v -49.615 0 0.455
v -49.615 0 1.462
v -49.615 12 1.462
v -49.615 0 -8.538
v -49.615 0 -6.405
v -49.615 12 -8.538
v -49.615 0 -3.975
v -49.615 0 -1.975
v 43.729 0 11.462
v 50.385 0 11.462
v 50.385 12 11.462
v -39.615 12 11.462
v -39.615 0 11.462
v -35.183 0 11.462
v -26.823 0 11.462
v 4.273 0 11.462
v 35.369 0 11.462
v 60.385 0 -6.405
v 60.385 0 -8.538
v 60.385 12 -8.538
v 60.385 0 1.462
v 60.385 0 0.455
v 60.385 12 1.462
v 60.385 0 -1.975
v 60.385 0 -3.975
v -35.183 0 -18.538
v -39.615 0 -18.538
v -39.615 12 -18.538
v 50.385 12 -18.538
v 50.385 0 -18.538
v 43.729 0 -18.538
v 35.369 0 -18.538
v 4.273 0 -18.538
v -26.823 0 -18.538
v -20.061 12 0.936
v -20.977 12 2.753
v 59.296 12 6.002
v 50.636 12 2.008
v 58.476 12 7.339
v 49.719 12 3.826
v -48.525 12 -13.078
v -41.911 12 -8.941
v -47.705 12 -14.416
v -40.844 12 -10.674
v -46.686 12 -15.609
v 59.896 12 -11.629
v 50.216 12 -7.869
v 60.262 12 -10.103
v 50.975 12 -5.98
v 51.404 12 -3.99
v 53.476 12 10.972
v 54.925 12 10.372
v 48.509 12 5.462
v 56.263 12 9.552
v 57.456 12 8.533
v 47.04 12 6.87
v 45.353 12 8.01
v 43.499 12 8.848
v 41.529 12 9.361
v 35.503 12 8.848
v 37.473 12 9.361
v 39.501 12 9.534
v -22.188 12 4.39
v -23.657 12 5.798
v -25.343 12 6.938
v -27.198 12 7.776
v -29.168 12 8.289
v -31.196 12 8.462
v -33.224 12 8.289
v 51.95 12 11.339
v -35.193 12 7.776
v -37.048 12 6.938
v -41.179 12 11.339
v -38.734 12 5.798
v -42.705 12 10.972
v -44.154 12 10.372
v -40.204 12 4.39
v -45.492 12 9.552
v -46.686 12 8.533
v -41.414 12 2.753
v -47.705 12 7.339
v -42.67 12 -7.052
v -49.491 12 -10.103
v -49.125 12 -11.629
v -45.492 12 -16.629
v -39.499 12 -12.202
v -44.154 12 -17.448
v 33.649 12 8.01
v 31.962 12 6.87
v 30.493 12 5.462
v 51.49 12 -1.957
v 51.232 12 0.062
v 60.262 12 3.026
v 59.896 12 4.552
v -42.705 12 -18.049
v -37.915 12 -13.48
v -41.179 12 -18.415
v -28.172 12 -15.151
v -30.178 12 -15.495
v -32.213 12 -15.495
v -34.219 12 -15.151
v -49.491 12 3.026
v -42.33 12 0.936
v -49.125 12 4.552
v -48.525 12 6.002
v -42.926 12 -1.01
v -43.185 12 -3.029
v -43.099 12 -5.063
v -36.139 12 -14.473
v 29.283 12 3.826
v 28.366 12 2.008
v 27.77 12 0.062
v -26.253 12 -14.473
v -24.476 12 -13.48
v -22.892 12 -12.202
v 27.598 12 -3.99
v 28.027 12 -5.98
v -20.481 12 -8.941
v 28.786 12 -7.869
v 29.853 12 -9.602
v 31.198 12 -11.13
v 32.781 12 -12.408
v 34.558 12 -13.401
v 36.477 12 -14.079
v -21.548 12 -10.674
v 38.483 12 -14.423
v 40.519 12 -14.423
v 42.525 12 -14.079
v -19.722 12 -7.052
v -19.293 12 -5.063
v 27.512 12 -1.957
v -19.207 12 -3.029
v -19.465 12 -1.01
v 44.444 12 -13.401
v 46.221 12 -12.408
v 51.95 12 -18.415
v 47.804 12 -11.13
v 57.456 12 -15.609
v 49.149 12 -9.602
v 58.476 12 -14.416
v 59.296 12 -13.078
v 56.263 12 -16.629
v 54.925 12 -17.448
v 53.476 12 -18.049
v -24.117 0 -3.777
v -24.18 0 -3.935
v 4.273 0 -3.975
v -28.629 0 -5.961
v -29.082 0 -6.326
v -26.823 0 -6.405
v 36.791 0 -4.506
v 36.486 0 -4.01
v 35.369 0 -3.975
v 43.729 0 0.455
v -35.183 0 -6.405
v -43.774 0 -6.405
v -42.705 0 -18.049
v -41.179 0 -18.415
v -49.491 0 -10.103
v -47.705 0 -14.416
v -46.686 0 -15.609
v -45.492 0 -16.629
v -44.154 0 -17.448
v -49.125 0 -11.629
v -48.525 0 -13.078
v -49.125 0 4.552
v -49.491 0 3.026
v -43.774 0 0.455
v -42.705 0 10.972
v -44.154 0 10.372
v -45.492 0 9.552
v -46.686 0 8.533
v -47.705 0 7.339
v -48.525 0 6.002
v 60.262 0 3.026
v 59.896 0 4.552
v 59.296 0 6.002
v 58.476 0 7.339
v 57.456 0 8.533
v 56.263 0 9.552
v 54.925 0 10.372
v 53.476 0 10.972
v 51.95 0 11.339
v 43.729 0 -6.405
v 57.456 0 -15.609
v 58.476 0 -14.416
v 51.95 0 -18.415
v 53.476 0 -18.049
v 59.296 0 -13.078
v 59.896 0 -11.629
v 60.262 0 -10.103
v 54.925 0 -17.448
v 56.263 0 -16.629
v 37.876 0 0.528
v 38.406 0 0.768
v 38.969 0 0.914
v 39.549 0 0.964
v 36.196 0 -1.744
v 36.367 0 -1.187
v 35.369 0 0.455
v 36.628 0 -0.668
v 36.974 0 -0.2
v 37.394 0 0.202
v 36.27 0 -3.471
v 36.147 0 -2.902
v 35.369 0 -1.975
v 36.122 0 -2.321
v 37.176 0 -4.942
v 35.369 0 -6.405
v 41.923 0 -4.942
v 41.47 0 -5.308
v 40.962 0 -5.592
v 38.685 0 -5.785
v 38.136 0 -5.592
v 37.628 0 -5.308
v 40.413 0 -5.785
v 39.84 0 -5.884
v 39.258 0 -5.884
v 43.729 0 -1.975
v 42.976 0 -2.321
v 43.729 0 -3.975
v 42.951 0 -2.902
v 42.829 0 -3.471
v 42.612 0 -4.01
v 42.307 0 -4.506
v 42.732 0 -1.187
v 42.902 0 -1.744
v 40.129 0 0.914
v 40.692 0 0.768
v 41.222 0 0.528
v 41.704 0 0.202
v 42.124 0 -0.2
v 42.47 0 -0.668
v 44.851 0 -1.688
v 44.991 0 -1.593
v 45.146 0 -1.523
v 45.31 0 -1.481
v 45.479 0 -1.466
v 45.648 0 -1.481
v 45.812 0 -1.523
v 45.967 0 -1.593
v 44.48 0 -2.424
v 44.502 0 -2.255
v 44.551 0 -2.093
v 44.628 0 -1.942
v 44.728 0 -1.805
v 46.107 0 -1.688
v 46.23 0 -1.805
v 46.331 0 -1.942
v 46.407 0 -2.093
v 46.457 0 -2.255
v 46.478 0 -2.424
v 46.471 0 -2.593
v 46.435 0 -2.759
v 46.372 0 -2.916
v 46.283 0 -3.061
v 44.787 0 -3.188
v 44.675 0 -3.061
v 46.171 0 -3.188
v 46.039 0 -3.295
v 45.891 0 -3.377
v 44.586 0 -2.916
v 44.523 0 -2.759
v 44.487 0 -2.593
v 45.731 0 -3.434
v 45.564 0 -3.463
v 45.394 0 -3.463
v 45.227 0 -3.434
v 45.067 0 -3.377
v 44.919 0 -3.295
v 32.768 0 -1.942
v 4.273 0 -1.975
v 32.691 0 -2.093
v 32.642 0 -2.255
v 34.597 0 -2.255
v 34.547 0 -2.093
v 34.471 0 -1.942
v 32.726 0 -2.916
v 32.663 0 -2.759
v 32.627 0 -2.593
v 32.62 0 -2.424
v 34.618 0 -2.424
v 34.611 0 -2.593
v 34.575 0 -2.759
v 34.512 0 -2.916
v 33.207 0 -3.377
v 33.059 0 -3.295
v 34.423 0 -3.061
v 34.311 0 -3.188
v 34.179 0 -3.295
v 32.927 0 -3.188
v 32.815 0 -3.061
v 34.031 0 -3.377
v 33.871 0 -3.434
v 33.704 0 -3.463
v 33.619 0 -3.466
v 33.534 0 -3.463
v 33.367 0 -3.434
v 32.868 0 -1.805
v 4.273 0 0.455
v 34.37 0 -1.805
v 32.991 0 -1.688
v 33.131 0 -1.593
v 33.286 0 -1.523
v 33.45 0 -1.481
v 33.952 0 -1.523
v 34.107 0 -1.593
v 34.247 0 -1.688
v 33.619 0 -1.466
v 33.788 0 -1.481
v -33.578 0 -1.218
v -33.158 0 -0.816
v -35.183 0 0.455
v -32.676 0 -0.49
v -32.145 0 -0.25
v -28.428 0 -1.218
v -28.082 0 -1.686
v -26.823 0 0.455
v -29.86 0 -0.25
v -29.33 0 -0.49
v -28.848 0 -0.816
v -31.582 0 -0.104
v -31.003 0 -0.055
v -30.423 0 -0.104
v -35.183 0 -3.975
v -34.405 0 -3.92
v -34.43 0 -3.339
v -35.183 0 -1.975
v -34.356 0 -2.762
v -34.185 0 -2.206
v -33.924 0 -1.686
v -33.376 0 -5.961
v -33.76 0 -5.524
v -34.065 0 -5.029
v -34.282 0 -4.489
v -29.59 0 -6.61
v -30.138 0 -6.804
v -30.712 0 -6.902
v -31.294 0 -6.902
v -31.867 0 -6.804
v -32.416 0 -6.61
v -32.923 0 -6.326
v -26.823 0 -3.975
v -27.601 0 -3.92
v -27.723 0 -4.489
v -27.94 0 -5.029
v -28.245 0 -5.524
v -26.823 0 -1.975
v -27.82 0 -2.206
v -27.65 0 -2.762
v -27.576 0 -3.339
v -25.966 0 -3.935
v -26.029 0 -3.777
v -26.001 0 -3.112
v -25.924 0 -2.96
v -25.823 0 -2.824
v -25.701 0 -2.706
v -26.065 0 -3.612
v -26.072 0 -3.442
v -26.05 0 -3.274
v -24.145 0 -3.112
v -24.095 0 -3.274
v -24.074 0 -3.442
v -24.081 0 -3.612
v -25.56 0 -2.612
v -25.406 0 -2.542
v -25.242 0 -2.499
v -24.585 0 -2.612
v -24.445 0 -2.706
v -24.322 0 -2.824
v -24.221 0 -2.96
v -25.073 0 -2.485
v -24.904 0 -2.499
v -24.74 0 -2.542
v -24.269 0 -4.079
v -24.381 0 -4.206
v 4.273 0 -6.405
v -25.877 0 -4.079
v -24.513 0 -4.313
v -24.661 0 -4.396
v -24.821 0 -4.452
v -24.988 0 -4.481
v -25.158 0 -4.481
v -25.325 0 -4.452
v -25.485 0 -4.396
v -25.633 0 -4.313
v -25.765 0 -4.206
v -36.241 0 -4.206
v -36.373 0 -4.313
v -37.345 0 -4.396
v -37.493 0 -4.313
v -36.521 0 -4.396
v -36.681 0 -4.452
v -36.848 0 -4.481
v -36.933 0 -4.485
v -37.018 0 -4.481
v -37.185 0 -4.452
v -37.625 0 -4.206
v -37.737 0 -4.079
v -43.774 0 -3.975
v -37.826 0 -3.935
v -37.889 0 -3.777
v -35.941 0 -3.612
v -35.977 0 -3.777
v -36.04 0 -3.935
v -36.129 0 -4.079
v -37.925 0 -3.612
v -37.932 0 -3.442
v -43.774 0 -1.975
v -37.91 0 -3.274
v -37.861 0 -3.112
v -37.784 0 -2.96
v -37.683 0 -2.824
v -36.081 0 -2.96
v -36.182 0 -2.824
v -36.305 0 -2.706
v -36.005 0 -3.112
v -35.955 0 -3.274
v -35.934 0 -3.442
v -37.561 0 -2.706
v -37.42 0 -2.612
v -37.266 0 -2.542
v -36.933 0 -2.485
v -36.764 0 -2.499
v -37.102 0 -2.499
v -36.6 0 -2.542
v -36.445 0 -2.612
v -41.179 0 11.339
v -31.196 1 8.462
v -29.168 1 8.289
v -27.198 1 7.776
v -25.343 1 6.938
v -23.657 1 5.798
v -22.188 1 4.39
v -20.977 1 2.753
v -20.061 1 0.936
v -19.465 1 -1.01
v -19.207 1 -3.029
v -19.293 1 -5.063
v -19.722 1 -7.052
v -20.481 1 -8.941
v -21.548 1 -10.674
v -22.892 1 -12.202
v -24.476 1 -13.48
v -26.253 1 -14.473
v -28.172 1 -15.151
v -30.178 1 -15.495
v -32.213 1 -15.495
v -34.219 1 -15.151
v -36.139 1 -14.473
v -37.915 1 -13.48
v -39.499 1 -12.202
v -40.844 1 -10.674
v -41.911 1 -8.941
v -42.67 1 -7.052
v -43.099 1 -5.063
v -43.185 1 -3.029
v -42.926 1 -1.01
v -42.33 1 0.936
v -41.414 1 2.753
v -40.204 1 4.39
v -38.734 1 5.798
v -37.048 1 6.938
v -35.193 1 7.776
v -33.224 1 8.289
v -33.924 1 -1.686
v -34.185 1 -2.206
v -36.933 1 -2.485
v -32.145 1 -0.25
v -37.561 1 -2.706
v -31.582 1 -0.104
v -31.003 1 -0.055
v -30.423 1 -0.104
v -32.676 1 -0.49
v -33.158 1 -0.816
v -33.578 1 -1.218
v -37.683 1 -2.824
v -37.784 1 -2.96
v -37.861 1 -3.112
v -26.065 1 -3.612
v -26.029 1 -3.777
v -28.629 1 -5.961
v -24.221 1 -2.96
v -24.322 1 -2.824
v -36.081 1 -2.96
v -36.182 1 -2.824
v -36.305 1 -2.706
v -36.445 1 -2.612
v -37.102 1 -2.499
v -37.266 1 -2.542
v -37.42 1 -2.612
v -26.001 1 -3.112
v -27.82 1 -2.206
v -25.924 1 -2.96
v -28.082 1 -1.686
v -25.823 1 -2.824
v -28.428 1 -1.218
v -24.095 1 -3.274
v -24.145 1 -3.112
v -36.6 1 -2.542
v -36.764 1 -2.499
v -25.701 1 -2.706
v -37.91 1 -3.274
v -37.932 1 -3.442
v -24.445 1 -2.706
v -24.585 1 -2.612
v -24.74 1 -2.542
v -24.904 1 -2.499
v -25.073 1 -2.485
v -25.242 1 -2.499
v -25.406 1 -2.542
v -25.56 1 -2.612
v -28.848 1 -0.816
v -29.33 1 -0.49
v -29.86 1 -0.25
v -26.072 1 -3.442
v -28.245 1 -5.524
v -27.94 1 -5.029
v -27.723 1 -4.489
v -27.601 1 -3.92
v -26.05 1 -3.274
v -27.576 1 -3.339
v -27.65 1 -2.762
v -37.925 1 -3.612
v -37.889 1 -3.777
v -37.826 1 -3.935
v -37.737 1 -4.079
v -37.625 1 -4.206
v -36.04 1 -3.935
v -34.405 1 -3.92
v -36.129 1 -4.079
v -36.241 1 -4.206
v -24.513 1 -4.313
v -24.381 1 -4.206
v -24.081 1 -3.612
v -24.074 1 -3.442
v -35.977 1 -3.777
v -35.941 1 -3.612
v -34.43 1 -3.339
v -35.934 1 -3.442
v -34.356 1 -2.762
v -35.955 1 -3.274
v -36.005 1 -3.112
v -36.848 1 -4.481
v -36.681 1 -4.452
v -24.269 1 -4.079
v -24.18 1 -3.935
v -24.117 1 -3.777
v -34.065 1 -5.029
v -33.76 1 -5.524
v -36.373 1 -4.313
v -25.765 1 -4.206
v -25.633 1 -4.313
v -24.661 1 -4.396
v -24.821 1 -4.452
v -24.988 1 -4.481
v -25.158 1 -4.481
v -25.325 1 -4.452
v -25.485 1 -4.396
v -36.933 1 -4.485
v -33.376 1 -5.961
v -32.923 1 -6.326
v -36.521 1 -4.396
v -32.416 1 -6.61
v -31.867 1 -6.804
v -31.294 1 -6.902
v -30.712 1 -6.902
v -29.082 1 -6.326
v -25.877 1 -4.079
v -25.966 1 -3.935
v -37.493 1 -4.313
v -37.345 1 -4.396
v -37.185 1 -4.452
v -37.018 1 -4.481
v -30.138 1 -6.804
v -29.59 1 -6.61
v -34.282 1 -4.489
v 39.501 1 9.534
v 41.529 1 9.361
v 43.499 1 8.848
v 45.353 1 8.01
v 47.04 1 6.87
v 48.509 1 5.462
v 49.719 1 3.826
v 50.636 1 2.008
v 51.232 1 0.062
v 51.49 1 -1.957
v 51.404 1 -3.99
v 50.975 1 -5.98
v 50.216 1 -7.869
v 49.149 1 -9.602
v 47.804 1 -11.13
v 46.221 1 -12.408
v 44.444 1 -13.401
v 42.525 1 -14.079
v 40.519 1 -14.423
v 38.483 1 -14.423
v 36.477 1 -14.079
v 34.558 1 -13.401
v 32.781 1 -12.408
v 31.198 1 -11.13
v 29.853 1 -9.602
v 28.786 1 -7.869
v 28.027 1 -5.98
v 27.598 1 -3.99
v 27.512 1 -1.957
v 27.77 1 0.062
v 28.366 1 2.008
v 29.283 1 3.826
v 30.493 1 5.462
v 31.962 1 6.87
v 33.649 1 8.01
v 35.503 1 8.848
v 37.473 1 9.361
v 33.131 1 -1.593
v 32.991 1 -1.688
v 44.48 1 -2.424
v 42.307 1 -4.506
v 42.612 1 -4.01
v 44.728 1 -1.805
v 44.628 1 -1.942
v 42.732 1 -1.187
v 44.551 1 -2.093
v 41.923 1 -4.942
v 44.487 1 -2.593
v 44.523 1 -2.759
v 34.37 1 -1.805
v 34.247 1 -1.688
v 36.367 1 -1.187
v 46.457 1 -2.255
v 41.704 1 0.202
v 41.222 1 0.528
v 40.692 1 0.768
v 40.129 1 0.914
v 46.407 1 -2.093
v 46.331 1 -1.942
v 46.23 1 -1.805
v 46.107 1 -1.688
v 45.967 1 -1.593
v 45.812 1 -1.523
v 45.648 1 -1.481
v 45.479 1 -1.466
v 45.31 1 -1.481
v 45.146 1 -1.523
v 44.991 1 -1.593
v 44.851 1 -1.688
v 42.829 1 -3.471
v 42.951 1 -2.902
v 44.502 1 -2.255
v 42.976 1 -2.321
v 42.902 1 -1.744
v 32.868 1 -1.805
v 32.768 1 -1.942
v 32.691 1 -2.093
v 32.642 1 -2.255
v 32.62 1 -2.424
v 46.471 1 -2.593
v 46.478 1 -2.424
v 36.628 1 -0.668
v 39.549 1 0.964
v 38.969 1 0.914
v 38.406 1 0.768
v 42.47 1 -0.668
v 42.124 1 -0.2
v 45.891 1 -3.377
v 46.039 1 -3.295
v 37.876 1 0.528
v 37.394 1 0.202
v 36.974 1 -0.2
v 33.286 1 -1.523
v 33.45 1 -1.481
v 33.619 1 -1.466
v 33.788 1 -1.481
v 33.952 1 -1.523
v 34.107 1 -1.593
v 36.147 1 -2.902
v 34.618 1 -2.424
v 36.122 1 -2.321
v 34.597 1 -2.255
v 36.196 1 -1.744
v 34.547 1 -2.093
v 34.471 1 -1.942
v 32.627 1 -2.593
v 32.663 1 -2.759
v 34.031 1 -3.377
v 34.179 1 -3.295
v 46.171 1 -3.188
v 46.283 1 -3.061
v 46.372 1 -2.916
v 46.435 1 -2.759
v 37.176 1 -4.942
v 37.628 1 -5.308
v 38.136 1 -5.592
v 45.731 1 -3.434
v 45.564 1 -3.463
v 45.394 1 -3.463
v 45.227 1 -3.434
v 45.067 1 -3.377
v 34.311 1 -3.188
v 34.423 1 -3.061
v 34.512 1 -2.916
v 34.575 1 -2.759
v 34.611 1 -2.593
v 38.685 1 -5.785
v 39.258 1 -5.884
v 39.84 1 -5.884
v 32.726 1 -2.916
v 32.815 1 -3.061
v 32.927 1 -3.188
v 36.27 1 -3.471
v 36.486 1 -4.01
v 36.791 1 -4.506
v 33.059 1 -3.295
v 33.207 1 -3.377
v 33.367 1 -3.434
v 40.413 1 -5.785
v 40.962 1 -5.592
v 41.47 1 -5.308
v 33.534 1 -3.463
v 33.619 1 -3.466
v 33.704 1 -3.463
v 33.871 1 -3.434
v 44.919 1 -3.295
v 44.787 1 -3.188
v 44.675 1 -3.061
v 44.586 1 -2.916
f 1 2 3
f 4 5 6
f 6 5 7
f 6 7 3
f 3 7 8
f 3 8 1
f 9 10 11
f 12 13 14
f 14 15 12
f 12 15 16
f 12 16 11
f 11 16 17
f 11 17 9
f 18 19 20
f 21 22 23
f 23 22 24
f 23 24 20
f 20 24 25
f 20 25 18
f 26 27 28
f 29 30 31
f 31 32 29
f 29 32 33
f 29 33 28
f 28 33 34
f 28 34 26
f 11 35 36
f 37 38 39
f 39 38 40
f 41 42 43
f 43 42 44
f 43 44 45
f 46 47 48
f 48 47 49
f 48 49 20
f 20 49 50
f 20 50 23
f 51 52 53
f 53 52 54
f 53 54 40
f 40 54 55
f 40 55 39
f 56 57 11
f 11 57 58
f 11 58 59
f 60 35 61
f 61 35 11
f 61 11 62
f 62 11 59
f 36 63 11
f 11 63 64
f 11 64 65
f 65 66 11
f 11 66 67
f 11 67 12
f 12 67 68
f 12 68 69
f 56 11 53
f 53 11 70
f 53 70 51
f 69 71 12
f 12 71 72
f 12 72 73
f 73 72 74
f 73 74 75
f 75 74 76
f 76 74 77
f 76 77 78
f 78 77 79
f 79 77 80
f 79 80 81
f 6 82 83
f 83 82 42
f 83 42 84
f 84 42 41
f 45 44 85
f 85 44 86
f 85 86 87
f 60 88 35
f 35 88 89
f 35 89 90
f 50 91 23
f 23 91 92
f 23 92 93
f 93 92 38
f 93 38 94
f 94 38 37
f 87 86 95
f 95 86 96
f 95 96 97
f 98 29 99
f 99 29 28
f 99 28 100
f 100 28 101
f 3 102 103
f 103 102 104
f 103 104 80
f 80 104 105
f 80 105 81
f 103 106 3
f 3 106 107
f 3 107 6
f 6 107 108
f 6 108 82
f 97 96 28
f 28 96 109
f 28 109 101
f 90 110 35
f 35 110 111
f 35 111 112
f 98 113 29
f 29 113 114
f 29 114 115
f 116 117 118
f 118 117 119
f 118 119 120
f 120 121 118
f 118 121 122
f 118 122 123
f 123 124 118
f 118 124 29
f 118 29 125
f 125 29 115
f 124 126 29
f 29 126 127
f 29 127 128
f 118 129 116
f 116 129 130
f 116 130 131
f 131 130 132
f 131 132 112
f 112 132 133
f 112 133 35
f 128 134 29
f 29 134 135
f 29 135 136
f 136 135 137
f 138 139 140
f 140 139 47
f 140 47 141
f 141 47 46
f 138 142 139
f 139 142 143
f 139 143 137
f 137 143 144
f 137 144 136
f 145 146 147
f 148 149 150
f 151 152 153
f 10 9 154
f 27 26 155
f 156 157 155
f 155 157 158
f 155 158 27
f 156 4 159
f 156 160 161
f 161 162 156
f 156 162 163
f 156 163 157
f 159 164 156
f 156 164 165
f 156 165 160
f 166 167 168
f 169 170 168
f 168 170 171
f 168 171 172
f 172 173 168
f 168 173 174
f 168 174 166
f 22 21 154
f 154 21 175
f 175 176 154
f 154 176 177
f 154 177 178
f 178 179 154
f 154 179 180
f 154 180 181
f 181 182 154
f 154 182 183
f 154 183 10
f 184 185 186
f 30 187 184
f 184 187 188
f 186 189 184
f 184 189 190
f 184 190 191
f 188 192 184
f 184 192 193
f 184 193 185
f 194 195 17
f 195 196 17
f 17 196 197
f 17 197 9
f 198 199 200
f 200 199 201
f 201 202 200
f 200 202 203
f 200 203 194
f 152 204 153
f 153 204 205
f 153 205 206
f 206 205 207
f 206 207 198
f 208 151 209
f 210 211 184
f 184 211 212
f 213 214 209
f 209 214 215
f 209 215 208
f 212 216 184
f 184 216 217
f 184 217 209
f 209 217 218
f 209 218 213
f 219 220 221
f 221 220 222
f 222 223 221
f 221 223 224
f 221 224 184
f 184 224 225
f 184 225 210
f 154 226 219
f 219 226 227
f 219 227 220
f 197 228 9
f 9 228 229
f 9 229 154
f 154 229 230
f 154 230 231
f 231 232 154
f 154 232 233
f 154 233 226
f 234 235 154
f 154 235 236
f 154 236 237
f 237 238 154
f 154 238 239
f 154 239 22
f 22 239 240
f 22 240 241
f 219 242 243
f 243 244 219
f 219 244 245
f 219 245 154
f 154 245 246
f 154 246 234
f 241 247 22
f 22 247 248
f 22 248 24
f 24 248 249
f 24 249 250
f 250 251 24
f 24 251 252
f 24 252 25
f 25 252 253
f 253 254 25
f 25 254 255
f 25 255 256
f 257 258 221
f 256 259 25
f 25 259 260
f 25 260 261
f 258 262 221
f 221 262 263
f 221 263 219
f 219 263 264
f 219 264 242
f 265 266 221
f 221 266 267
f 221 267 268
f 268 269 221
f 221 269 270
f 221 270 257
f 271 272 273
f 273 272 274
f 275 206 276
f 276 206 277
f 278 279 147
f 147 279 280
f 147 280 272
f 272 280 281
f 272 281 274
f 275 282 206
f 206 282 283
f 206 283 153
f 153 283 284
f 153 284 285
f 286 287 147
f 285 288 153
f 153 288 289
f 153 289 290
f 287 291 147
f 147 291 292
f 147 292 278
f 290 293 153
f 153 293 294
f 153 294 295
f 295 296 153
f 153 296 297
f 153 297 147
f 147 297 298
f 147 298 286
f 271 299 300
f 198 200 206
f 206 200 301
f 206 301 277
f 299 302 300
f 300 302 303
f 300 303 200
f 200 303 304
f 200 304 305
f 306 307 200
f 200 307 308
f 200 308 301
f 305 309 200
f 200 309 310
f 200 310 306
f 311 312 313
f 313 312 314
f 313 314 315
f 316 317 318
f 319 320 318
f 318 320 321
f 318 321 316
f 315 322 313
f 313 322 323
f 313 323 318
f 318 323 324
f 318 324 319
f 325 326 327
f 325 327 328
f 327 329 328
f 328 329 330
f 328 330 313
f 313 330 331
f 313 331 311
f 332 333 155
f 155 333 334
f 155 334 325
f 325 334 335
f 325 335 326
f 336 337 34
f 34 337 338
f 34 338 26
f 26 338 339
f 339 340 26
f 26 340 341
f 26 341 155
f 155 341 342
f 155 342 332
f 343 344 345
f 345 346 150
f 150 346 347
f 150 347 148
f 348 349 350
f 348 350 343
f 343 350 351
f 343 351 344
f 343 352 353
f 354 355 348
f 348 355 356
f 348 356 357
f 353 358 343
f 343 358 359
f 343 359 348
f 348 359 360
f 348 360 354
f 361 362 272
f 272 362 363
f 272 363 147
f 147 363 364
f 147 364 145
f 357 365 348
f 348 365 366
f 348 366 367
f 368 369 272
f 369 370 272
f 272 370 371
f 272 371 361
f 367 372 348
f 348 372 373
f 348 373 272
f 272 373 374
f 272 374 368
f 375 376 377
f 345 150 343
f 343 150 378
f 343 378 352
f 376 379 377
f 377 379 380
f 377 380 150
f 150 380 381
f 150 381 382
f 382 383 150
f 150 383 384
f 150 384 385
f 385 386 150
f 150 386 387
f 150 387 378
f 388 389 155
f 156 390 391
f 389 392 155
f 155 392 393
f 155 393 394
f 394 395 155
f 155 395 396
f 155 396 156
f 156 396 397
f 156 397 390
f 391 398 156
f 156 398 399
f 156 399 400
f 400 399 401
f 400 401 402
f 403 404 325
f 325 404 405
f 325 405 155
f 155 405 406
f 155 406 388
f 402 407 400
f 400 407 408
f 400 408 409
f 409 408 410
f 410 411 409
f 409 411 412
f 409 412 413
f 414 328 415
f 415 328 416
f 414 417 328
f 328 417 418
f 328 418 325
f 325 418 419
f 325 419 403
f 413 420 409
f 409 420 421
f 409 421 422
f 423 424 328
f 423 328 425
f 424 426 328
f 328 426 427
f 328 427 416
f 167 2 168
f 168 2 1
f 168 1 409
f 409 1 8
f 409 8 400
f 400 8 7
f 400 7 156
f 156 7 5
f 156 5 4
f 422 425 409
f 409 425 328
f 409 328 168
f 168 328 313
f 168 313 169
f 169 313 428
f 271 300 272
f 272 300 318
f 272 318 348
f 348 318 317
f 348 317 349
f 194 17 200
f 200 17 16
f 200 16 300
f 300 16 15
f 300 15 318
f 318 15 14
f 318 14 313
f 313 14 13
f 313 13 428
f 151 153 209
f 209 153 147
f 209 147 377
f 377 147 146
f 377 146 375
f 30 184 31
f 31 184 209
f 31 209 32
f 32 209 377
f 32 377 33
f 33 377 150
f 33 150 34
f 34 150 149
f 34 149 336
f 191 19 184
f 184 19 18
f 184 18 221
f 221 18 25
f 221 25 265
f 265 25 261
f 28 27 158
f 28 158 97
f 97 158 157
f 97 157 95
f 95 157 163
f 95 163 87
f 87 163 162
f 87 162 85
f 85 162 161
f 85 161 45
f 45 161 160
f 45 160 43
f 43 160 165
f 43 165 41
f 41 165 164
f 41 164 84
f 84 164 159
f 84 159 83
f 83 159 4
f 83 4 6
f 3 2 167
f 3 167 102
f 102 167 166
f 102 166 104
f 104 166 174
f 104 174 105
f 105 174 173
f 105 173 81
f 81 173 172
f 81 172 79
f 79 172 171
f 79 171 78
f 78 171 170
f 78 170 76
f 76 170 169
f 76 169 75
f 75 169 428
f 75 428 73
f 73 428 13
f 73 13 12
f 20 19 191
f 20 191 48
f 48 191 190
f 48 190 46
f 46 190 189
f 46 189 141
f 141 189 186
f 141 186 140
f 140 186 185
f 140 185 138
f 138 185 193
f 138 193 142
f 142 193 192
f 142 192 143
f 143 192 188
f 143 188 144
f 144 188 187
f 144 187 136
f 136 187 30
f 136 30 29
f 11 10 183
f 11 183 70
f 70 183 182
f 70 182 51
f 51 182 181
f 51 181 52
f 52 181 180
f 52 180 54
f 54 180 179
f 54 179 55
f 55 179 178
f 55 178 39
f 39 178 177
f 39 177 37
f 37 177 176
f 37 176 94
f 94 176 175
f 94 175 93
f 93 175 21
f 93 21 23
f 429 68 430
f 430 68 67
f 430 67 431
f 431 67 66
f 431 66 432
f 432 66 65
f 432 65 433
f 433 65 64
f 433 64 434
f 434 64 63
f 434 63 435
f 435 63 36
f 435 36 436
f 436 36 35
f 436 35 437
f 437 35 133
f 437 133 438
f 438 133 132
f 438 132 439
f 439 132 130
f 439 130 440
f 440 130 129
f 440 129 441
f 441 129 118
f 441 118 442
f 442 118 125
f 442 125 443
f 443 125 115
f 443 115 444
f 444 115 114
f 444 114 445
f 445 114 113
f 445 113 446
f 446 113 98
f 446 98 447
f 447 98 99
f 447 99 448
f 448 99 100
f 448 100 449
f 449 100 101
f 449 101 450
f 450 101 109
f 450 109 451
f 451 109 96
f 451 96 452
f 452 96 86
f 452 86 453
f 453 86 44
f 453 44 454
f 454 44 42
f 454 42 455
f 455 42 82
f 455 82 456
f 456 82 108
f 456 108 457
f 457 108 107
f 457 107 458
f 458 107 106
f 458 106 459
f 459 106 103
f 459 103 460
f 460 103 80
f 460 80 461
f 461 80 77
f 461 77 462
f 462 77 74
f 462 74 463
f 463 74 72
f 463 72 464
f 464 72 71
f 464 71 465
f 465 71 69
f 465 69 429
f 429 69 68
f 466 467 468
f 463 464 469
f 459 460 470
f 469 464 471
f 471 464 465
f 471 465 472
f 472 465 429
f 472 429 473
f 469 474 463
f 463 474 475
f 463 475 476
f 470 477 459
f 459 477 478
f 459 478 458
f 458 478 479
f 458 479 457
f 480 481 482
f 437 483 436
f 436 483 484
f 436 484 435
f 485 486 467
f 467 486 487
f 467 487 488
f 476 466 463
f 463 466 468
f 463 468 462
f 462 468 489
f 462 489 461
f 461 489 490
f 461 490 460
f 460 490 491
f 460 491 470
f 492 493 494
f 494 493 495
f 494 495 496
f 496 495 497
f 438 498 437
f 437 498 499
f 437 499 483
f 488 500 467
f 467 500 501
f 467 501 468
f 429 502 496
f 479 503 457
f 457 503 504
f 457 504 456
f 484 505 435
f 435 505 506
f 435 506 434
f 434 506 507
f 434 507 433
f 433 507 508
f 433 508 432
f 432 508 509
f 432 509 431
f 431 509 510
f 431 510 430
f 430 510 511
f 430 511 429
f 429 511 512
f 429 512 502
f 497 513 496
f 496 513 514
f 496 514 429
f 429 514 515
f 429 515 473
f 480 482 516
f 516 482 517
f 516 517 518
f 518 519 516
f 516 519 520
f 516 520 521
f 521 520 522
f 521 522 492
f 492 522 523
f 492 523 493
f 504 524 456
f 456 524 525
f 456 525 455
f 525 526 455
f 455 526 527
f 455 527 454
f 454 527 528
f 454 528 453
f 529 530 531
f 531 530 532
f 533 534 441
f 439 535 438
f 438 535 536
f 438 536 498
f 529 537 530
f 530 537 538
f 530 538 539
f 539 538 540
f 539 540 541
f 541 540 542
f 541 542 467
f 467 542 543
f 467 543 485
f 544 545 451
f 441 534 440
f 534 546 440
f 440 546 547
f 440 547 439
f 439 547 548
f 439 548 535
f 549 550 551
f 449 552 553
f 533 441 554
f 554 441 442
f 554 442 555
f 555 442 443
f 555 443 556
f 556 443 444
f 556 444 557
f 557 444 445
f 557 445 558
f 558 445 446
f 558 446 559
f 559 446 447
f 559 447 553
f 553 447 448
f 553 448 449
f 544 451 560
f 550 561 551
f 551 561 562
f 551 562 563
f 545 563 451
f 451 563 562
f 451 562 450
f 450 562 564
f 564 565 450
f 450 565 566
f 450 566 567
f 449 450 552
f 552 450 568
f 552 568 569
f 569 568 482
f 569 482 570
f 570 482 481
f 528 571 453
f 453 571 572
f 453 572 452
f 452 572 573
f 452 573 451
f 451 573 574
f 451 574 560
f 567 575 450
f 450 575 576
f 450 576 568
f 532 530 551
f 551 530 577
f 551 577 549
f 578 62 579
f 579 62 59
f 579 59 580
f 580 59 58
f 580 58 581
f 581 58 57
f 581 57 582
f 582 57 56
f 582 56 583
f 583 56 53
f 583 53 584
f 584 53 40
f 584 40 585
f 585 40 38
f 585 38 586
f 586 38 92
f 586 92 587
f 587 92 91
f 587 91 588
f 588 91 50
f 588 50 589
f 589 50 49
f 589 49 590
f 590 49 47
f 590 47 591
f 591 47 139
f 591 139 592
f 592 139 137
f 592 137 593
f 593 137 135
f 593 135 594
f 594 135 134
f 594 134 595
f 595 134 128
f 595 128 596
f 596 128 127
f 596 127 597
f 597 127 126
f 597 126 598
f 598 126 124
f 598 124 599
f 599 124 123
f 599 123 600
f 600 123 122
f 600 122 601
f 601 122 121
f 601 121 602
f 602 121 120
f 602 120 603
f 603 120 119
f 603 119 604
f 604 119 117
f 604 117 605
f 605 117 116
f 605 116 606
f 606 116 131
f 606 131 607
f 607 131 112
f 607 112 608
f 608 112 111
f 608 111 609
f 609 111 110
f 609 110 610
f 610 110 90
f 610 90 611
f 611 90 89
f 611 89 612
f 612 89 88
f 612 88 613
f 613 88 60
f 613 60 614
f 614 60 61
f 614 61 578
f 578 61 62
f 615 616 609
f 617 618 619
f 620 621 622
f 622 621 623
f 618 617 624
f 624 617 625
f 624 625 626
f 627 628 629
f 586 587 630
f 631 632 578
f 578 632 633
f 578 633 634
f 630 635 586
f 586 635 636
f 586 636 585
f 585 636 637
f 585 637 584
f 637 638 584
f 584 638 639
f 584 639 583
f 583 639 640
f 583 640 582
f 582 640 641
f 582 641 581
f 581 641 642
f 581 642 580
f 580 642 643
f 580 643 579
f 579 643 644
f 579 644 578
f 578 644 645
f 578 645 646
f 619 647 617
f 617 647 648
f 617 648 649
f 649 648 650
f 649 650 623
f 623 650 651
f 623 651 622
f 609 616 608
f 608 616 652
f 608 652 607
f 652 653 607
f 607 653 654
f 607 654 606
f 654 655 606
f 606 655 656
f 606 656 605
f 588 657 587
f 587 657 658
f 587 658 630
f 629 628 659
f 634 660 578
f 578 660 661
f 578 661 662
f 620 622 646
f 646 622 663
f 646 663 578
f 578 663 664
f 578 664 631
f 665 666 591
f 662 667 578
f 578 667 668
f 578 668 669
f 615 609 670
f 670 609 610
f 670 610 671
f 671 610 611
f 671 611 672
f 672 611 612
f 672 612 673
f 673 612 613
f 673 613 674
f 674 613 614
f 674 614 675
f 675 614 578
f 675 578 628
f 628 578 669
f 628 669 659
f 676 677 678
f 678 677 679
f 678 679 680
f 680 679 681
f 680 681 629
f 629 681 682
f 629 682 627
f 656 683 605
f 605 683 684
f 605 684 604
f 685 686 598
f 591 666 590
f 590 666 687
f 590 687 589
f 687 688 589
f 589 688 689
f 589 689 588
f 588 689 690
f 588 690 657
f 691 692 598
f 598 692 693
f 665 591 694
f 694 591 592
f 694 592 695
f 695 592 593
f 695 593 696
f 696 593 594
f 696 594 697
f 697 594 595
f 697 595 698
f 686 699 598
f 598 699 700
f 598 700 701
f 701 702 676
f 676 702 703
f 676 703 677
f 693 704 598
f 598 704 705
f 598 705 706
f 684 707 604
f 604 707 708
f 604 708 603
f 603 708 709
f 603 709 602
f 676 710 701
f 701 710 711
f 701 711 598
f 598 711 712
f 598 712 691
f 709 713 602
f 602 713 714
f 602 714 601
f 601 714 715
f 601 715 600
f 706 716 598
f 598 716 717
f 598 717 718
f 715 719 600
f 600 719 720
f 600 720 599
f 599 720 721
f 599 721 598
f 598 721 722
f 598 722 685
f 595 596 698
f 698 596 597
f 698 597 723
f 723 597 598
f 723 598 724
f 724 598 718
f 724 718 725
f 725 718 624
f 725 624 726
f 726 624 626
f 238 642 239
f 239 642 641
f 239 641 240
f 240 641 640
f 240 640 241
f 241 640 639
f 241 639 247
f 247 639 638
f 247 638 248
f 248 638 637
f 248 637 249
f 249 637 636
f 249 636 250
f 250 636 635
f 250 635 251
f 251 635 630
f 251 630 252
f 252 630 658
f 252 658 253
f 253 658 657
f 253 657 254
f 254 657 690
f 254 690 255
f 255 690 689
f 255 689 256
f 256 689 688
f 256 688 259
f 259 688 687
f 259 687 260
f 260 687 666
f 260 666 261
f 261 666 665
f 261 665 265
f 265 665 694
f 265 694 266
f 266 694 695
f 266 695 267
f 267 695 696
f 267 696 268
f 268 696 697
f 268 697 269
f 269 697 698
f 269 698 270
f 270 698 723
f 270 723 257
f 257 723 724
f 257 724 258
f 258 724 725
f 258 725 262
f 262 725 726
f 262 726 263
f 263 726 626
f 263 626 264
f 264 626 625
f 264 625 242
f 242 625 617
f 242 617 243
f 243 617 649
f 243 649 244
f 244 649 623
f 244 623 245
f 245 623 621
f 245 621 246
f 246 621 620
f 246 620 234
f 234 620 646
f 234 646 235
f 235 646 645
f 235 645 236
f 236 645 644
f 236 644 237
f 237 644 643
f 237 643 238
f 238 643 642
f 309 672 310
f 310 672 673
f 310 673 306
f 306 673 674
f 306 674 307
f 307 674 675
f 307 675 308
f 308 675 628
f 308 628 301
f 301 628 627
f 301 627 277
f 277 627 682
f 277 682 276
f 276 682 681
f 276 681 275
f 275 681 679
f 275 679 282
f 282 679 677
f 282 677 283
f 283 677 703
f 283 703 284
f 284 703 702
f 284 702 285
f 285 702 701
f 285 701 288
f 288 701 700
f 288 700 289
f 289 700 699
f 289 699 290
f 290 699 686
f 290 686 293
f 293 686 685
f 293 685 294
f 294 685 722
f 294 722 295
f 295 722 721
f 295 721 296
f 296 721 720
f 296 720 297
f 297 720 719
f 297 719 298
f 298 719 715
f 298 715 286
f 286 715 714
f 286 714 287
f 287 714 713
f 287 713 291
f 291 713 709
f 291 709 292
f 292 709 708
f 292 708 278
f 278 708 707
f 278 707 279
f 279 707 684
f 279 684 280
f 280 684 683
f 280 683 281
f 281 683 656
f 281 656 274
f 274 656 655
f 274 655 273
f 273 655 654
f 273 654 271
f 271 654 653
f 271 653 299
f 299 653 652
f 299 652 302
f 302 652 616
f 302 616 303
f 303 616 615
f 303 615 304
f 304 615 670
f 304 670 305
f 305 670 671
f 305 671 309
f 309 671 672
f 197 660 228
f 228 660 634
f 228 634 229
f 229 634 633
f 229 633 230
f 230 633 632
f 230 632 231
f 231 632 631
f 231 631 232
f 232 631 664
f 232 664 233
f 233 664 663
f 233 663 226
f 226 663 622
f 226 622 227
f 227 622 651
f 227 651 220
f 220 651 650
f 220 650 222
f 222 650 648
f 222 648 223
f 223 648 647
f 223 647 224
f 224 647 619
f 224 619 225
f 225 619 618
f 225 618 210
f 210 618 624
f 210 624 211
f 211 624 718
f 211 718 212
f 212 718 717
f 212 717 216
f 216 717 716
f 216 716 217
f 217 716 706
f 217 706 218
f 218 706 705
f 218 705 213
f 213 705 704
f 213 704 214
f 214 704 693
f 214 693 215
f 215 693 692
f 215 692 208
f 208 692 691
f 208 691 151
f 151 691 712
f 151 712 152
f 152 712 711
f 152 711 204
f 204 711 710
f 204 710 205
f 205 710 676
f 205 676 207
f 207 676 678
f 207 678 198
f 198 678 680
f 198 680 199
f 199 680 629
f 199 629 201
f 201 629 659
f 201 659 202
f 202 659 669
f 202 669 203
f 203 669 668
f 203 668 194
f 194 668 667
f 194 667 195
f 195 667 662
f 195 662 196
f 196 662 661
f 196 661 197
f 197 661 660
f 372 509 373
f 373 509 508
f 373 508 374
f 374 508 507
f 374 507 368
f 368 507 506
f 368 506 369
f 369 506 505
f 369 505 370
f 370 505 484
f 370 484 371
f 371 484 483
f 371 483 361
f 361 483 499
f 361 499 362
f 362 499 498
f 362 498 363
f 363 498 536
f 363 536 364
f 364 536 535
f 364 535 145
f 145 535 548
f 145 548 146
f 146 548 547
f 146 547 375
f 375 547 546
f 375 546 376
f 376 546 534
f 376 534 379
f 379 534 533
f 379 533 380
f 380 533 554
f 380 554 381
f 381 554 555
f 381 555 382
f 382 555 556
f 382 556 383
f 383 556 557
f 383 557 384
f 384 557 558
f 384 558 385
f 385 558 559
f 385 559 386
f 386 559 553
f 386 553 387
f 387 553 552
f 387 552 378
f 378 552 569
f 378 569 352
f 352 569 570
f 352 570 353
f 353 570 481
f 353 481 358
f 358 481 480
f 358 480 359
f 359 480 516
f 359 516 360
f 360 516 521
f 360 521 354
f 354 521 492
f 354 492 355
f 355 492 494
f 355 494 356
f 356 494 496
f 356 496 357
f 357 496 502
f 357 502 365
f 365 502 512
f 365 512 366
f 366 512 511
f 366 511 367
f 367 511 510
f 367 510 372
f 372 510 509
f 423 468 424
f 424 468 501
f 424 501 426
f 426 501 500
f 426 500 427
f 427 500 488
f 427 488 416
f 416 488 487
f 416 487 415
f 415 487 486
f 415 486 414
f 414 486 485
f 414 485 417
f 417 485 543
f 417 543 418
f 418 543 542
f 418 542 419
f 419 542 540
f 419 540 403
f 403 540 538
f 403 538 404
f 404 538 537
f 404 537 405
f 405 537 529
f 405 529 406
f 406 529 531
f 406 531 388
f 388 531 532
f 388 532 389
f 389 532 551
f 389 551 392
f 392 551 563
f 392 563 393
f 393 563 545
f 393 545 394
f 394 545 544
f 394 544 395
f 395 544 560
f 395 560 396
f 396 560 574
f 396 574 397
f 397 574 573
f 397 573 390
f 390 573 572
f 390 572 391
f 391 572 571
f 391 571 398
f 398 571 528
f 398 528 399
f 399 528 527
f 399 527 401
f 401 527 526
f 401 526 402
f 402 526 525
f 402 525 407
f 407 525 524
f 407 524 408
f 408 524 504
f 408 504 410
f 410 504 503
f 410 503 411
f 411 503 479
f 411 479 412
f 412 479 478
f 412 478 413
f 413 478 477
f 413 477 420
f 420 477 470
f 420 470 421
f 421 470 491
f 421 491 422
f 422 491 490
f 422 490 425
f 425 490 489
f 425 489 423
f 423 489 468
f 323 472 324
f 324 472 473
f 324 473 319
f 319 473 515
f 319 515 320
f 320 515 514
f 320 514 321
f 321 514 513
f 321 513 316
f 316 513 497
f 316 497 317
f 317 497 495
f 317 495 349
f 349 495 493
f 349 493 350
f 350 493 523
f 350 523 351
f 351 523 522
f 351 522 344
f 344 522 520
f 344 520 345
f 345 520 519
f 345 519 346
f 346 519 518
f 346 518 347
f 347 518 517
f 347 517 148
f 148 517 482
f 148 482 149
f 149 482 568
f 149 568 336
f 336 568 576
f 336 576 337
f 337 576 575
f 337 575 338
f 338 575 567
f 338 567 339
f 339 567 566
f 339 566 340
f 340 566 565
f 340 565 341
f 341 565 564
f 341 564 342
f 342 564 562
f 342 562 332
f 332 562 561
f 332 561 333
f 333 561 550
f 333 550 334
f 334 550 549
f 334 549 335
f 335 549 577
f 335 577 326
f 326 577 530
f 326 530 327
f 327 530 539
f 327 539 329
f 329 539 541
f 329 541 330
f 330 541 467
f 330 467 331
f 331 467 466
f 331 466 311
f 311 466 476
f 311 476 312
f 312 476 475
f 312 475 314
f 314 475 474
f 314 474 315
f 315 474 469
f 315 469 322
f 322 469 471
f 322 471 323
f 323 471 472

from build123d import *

# Parameters (mm, degrees)
SKETCH1_W           = 110
SKETCH1_H           = 30
BOSS_EXTRUDE1_DEPTH = 12
FILLET1_R           = 10
FILLET2_R           = 10
SKETCH9_R           = 12
CUT_EXTRUDE5_DEPTH  = 11
SKETCH13_R          = 12
CUT_EXTRUDE7_DEPTH  = 11
SKETCH15_R          = 3.43
SKETCH15_R_2        = 1
CUT_EXTRUDE8_DEPTH  = 123.394479271
SKETCH16_R          = 3.43
SKETCH16_R_2        = 1
CUT_EXTRUDE9_DEPTH  = 123.394479271


with BuildPart() as part:
    # Sketch1 → Boss-Extrude1 (new body)
    with BuildSketch(Plane(origin=(0, 0, 0), x_dir=(1, 0, 0), z_dir=(0, 1, 0))):
        with Locations((5.385430756, 3.53837453)):
            Rectangle(SKETCH1_W, SKETCH1_H)
    extrude(amount=BOSS_EXTRUDE1_DEPTH)

    # Fillet1
    fillet1_edges = [part.edges().sort_by_distance(p)[0] for p in [
        (-49.614569244, 6, -18.53837453),
        (-49.614569244, 6, 11.46162547),
    ]]
    fillet(fillet1_edges, radius=FILLET1_R)

    # Fillet2
    fillet2_edges = [part.edges().sort_by_distance(p)[0] for p in [
        (60.385430756, 6, -18.53837453),
        (60.385430756, 6, 11.46162547),
    ]]
    fillet(fillet2_edges, radius=FILLET2_R)

    # Sketch9 → Cut-Extrude5 (cut)
    with BuildSketch(Plane(origin=(0, 12, 0), x_dir=(1, 0, 0), z_dir=(0, 1, 0))):
        with Locations(Location((-31.195762423, 3.53837453, 0), (0, 0, 270))):
            Circle(SKETCH9_R)
    extrude(amount=-CUT_EXTRUDE5_DEPTH, mode=Mode.SUBTRACT)

    # Sketch13 → Cut-Extrude7 (cut)
    with BuildSketch(Plane(origin=(70.696833098, 12, 1.072209922), x_dir=(1, 0, 0), z_dir=(0, 1, 0))):
        with Locations(Location((-31.195762423, 3.53837453, 0), (0, 0, 270))):
            Circle(SKETCH13_R)
    extrude(amount=-CUT_EXTRUDE7_DEPTH, mode=Mode.SUBTRACT)

    # Sketch15 → Cut-Extrude8 (cut, through all)
    with BuildSketch(Plane(origin=(70.696833098, 1, 1.072209922), x_dir=(1, 0, 0), z_dir=(0, 1, 0))):
        with Locations(Location((-31.147671482, 3.53837453, 0), (0, 0, 270))):
            Circle(SKETCH15_R)
        with Locations(Location((-25.217671482, 3.53837453, 0), (0, 0, 270))):
            Circle(SKETCH15_R_2)
        with Locations(Location((-37.077671482, 3.53837453, 0), (0, 0, 90))):
            Circle(SKETCH15_R_2)
    extrude(amount=-CUT_EXTRUDE8_DEPTH, mode=Mode.SUBTRACT)

    # Sketch16 → Cut-Extrude9 (cut, through all)
    with BuildSketch(Plane(origin=(70.696833098, 1, 1.072209922), x_dir=(1, 0, 0), z_dir=(0, 1, 0))):
        with Locations(Location((-101.699594536, 4.556727145, 0), (0, 0, 270))):
            Circle(SKETCH16_R)
        with Locations(Location((-95.769594536, 4.556727145, 0), (0, 0, 270))):
            Circle(SKETCH16_R_2)
        with Locations(Location((-107.629594536, 4.556727145, 0), (0, 0, 90))):
            Circle(SKETCH16_R_2)
    extrude(amount=-CUT_EXTRUDE9_DEPTH, mode=Mode.SUBTRACT)


solid = part.part
